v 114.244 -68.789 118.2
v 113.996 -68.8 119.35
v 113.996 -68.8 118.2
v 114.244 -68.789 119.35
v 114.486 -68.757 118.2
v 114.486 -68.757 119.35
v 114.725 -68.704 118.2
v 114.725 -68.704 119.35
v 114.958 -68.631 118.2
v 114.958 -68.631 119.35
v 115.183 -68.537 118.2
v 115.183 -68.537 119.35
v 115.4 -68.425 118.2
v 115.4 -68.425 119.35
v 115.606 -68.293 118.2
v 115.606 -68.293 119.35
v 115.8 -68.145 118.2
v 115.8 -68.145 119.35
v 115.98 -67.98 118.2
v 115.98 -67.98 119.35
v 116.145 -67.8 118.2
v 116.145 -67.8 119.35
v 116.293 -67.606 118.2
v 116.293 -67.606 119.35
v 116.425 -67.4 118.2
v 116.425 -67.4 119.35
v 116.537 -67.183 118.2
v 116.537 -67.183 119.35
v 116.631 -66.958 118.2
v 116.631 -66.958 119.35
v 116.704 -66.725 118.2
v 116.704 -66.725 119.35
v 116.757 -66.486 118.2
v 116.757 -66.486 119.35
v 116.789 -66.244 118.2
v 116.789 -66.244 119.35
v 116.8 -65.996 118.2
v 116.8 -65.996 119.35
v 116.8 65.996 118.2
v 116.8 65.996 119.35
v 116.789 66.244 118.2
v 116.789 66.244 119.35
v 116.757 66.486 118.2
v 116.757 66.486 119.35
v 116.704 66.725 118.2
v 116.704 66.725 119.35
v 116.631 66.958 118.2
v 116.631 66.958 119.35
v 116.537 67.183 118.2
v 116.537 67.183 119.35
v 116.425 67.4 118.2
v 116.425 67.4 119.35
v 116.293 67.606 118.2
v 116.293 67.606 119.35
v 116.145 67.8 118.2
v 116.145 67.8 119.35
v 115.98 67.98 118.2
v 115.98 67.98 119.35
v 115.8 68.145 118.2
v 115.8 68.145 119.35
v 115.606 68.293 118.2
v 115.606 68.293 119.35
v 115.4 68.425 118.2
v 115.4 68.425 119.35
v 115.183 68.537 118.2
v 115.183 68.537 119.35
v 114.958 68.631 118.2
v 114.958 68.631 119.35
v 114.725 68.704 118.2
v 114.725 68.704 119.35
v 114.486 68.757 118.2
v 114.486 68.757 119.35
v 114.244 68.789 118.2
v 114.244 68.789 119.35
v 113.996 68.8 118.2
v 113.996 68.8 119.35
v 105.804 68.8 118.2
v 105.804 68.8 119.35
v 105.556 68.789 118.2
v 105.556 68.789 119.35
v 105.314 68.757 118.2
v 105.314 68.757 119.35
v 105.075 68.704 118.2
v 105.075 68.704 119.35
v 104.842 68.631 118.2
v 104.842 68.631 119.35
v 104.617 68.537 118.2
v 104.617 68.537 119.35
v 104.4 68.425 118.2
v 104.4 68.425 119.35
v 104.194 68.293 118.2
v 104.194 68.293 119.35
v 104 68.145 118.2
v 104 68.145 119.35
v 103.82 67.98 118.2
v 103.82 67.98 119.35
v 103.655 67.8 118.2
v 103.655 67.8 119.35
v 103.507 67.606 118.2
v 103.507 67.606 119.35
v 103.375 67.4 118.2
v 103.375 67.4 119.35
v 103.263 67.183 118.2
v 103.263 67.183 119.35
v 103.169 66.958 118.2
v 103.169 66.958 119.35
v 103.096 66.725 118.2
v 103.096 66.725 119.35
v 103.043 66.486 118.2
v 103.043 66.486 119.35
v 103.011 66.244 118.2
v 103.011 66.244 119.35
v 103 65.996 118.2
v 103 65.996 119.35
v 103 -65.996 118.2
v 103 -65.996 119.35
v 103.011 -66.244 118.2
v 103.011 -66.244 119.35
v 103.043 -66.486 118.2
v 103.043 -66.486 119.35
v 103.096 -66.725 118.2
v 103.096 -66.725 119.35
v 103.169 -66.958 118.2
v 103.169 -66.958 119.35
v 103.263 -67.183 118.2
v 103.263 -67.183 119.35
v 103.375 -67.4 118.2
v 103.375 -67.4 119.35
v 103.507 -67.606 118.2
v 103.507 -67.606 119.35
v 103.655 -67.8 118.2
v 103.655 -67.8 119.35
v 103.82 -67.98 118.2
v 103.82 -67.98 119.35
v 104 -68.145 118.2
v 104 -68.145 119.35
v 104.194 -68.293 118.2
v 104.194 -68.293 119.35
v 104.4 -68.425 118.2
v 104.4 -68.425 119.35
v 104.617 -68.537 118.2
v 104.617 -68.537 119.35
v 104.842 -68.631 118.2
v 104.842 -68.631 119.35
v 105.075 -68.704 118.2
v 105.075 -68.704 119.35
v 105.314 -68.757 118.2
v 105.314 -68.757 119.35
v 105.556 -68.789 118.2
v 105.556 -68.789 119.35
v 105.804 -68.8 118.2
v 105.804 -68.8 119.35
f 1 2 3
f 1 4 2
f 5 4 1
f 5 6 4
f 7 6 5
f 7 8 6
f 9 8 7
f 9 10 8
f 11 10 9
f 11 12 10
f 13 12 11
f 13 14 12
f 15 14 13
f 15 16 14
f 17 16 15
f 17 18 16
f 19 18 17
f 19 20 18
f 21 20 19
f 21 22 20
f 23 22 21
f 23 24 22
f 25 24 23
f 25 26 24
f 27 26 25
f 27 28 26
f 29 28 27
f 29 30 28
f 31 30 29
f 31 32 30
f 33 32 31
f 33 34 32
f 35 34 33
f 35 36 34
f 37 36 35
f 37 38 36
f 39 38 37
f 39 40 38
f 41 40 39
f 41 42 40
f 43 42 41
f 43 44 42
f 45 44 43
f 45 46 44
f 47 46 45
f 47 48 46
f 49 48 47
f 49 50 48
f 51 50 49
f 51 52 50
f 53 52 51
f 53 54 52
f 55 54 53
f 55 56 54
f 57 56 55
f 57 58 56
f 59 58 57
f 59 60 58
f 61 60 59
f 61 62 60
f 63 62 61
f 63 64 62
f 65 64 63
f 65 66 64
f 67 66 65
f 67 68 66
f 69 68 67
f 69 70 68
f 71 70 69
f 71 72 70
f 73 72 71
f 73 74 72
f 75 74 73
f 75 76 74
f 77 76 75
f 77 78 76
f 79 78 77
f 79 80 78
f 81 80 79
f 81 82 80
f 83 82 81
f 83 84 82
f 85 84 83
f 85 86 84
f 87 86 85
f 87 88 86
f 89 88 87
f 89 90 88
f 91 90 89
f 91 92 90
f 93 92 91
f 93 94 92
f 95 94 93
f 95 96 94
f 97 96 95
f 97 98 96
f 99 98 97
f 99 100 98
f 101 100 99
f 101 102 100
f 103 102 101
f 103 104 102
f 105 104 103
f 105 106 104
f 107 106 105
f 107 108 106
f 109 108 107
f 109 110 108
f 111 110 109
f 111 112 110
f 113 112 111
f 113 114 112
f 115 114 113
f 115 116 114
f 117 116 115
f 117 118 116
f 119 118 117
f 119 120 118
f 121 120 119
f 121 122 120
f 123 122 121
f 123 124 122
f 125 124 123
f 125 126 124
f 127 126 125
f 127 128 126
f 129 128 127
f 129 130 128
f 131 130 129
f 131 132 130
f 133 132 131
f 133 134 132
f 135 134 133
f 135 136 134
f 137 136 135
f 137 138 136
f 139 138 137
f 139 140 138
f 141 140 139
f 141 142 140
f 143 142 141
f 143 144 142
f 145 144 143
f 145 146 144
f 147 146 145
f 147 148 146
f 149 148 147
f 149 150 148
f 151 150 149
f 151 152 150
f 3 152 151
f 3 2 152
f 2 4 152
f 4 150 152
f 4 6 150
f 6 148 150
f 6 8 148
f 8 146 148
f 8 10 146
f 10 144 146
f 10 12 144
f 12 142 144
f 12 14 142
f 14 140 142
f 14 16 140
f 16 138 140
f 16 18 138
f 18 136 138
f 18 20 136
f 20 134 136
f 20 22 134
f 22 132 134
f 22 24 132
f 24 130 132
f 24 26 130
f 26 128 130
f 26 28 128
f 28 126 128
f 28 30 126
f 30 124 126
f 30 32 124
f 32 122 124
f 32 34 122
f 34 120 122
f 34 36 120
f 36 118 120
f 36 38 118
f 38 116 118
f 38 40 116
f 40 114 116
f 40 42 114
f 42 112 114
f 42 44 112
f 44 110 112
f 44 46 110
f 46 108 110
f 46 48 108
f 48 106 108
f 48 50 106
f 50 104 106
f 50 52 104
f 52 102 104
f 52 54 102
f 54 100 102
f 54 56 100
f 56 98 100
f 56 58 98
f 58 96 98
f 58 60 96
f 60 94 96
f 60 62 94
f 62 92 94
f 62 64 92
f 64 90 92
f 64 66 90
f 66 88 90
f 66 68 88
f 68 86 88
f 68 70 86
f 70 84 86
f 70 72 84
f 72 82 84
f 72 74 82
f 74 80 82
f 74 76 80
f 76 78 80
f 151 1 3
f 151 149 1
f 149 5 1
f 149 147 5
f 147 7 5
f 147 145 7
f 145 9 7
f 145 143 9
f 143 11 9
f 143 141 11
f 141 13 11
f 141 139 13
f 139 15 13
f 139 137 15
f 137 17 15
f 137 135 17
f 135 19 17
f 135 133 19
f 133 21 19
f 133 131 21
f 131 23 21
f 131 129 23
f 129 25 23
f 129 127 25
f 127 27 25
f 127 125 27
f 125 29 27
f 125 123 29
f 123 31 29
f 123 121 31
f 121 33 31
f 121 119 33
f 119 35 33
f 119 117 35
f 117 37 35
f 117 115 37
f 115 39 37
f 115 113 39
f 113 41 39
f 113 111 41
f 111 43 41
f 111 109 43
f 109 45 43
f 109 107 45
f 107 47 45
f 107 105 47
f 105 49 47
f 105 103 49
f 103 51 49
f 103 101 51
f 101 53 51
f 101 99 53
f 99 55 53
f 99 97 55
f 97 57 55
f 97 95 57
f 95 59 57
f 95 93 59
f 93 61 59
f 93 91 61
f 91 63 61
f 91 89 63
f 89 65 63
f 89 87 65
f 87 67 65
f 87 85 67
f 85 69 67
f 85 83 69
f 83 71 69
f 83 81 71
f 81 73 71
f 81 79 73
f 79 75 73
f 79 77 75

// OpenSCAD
// file: ../md_params.scad
// =====================================================================
//  Microduck-look skin for the Open Duck Mini v2 skeleton
//  Shared parameters and helpers.
//  Frame: Open Duck print/robot frame, mm. +x forward, +y left, +z up.
//  Every part is modelled where it sits on the robot (zero pose).
// =====================================================================

$fn = 72;
EPS = 0.01;

// ---------- fasteners ----------
INSERT_D   = 4.0;   // hole for M3 x 5 brass heat-set insert (Amazon B0DZ8B7FW1)
INSERT_L   = 6.0;   // hole depth for that insert
M3_CLR     = 3.4;   // M3 clearance
M3_HEAD    = 6.5;   // M3 socket-head counterbore
M3_NUT     = 6.4;   // M3 nut across corners (+clearance)
M2_TAP     = 1.8;   // M2 self-tapping pilot (SG90 tab screws, servo adapter)
M25_TAP    = 2.2;   // M2.5 self-tapping pilot (Radxa)
M2_CLR     = 2.4;

// ---------- colours (for previews only) ----------
C_WHITE = [0.95, 0.94, 0.90];
C_BLACK = [0.13, 0.13, 0.14];

// ---------- helpers ----------
function lerp(a, b, t) = a + (b - a) * t;

// Section with vertical sides from zb to zc and a superellipse cap from zc to zt.
// Points are (y, z). n = 2 gives an ellipse, larger n gives a squarer top.
function se_pts(w, zb, zc, zt, n, N = 56) =
    concat(
        [[ w, zb]],
        [for (i = [0:N]) let(t = i * 180 / N, c = cos(t), s = sin(t))
            [w * sign(c) * pow(abs(c), 2 / n), zc + (zt - zc) * pow(abs(s), 2 / n)]],
        [[-w, zb]]
    );

// st = [x, half_width, z_bottom, z_curve_start, z_top, exponent]
module station(st, inset = 0, ext = 0) {
    translate([st[0], 0, 0]) rotate([90, 0, 90])
        linear_extrude(height = EPS, center = true)
            offset(delta = -inset)
                polygon(se_pts(st[1], st[2] - ext, st[3], st[4], st[5]));
}

// piecewise loft through convex stations (hull of neighbours)
module loft(sts, inset = 0, ext = 0) {
    for (i = [0:len(sts) - 2])
        hull() { station(sts[i], inset, ext); station(sts[i + 1], inset, ext); }
}

// station parameters interpolated at any x inside the list
function st_at(sts, x) =
    let(i = max([for (k = [0:len(sts) - 2]) if (sts[k][0] <= x) k]),
        a = sts[i], b = sts[i + 1], t = (x - a[0]) / (b[0] - a[0]))
    [x, lerp(a[1], b[1], t), lerp(a[2], b[2], t), lerp(a[3], b[3], t),
        lerp(a[4], b[4], t), lerp(a[5], b[5], t)];

// heat-set insert pocket: opening at origin, going along -z by default
module insert_hole(depth = INSERT_L, d = INSERT_D) {
    translate([0, 0, -depth]) cylinder(d = d, h = depth + EPS);
    translate([0, 0, -0.6]) cylinder(d1 = d, d2 = d + 0.8, h = 0.6 + EPS);   // lead-in chamfer
}

// M3 clearance with counterbore, axis +z, counterbore at the top
module m3_cb(len_total, cb_depth) {
    translate([0, 0, -EPS]) cylinder(d = M3_CLR, h = len_total + 2 * EPS);
    translate([0, 0, len_total - cb_depth]) cylinder(d = M3_HEAD, h = cb_depth + 1);
}

module rrect(x0, x1, y0, y1, r) {
    translate([x0 + r, y0 + r]) offset(r = r) square([x1 - x0 - 2 * r, y1 - y0 - 2 * r]);
}
// main file
include <../md_params.scad>
include <../md_head.scad>
mouth_bill();
